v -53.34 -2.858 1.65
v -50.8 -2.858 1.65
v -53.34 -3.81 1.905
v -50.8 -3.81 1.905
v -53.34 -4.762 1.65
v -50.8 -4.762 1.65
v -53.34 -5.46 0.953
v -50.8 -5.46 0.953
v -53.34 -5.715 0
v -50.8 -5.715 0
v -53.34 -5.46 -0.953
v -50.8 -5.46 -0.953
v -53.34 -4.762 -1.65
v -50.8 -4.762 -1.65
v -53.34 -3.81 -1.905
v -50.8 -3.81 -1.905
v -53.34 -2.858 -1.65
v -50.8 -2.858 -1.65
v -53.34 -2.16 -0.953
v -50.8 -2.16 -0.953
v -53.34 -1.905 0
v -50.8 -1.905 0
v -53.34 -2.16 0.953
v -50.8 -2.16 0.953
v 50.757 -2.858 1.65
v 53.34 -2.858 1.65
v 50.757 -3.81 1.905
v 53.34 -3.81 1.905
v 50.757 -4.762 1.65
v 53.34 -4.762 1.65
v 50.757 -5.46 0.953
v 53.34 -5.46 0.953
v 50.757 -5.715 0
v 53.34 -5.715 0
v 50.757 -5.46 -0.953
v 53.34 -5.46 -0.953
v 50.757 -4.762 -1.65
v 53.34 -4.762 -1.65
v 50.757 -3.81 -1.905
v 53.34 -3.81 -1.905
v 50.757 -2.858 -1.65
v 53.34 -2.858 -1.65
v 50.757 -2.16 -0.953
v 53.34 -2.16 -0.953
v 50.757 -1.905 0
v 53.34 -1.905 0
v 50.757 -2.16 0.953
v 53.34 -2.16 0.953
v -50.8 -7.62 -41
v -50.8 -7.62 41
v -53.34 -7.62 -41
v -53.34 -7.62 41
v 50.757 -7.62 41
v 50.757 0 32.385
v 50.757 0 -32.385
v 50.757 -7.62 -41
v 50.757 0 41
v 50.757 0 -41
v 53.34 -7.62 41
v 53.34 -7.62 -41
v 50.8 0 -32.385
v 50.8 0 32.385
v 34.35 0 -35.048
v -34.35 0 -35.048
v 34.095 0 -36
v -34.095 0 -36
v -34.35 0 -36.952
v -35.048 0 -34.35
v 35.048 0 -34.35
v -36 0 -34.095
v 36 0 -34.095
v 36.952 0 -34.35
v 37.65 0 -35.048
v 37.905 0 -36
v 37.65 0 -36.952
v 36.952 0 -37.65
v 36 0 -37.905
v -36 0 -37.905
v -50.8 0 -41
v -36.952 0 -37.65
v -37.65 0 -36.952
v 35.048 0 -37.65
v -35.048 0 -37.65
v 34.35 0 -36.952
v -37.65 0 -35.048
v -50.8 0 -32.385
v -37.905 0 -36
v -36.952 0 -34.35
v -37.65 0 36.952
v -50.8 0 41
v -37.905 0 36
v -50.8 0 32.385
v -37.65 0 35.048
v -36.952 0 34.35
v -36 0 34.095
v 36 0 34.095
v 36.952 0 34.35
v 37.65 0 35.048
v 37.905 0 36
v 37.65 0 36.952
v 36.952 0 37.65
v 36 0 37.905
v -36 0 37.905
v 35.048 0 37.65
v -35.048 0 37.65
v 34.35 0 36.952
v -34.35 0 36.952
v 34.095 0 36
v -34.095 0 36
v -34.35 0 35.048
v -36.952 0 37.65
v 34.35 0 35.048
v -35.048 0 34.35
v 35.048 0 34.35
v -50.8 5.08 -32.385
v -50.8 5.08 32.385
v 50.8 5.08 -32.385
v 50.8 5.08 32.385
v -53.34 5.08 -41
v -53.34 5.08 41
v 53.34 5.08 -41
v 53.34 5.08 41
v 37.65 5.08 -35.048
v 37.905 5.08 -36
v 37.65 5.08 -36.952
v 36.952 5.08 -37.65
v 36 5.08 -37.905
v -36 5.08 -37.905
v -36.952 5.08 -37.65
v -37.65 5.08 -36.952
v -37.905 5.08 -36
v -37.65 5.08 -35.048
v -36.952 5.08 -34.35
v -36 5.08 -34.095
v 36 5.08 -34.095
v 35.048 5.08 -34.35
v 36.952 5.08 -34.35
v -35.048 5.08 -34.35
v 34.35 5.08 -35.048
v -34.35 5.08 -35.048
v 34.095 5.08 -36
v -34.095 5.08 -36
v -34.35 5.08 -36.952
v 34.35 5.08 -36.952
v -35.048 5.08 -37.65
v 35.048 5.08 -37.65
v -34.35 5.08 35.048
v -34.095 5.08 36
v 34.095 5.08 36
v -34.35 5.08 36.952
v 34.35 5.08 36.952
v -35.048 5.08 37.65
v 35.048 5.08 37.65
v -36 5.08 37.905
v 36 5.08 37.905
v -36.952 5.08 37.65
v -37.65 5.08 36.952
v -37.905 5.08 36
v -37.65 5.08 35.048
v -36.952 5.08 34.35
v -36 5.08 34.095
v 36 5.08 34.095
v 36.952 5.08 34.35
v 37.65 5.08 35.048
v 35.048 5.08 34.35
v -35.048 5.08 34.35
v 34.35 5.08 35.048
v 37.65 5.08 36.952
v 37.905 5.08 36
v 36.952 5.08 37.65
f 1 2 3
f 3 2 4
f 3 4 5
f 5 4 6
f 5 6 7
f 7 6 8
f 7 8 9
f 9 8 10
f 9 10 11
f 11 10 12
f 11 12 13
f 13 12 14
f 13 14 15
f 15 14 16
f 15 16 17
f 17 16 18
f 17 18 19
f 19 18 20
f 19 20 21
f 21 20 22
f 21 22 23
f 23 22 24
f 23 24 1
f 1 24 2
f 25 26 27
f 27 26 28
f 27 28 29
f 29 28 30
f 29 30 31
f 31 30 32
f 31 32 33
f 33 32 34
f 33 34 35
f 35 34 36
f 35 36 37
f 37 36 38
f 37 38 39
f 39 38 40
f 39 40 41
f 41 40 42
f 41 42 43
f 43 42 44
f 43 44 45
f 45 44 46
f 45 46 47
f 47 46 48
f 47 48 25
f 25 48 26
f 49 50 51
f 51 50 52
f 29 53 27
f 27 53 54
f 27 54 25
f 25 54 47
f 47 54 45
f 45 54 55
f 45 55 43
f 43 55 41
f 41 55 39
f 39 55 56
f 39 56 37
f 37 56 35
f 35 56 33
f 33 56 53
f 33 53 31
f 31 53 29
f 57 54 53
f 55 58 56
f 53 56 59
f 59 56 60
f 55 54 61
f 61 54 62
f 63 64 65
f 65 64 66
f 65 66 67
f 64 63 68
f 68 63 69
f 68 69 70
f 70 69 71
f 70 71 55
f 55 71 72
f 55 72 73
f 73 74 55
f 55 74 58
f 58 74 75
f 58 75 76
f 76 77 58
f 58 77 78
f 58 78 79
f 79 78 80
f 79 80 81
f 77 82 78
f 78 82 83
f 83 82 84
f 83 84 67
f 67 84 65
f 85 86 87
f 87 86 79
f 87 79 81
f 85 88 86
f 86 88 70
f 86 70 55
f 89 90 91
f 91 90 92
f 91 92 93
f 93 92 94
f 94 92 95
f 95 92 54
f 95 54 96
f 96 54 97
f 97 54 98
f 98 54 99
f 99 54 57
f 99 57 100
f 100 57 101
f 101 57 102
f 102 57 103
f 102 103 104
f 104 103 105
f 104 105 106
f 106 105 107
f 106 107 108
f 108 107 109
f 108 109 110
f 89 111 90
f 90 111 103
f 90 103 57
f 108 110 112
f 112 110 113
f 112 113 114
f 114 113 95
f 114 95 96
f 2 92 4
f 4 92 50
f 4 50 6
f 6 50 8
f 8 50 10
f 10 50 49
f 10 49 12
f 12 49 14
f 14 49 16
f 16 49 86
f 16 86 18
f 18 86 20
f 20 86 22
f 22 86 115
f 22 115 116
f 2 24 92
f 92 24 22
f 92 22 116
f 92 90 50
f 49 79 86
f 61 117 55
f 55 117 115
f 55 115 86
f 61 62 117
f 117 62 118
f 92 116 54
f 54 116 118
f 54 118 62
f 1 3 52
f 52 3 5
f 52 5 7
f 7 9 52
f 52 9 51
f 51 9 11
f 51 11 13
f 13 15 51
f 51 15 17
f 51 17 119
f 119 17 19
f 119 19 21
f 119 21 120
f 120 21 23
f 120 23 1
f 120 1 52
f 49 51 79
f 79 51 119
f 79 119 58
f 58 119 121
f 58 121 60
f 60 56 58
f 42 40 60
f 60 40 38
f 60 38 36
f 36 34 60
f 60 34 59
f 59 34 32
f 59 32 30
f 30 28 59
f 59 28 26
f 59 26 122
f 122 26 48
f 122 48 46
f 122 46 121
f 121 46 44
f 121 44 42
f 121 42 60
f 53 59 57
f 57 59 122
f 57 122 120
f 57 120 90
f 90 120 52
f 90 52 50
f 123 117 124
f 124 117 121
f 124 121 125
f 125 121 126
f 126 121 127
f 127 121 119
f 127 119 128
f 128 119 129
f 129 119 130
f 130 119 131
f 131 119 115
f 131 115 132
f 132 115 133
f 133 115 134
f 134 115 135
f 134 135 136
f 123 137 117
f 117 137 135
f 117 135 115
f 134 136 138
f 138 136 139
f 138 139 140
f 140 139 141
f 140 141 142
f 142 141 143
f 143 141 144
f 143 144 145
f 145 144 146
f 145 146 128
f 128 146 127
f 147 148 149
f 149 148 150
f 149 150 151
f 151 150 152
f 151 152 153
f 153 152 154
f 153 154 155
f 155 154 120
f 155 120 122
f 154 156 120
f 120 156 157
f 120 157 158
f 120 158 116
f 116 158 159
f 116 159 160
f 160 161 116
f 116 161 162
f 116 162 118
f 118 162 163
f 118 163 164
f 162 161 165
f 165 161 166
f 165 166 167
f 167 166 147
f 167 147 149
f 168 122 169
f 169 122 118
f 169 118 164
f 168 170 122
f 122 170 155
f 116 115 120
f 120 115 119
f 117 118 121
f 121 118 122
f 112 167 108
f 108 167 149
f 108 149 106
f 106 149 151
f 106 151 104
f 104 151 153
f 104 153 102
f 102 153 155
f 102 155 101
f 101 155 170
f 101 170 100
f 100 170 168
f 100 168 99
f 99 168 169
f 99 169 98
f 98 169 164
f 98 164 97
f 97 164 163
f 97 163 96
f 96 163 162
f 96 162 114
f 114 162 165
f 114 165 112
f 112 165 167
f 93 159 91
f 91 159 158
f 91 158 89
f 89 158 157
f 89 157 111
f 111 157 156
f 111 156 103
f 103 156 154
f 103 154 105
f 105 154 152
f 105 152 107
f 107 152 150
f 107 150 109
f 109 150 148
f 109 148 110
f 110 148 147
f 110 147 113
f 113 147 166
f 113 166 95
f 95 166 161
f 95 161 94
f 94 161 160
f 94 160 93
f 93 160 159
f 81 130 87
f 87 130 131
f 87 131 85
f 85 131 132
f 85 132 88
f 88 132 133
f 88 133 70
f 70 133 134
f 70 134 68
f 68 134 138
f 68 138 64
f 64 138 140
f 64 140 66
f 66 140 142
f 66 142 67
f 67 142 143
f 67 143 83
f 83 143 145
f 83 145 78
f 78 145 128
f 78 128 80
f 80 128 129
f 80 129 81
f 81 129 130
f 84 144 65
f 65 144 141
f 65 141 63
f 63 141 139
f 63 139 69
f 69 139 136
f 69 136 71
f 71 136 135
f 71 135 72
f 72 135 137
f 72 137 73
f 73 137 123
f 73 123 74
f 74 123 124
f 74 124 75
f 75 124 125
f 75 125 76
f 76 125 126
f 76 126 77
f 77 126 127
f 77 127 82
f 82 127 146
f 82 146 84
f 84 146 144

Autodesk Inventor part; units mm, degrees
ref_plane "YZ Plane" through (0, 0, 0) normal (1, 0, 0) x (0, 1, 0)
ref_plane "XZ Plane" through (0, 0, 0) normal (0, 1, 0) x (-1, 0, 0)
ref_plane "XY Plane" through (0, 0, 0) normal (0, 0, 1) x (1, 0, 0)
sketch "Sketch1" plane through (0, 0, 0) normal (0, 1, 0) x (-1, 0, 0)
  line L0 (-53.34, 41) -> (53.34, 41)
  line L1 (53.34, 41) -> (53.34, -41)
  line L2 (53.34, -41) -> (-53.34, -41)
  line L3 (-53.34, -41) -> (-53.34, 41)
  line L4 (-53.34, 41) -> (53.34, -41) construction
  line L5 (53.34, 41) -> (-53.34, -41) construction
  line L6 (-50.8, 32.385) -> (50.8, 32.385)
  line L7 (50.8, 32.385) -> (50.8, -32.385)
  line L8 (50.8, -32.385) -> (-50.8, -32.385)
  line L9 (-50.8, -32.385) -> (-50.8, 32.385)
  line L10 (-50.8, 32.385) -> (50.8, -32.385) construction
  line L11 (50.8, 32.385) -> (-50.8, -32.385) construction
  point P0 (0, 0)
  dimension "d0" = 106.68
  dimension "d1" = 82
  dimension "d2" = 101.6
  dimension "d3" = 64.77
extrude "Extrusion1" add sketch "Sketch1" along normal blind 5.08
sketch "Sketch2" plane through (0, 0, 0) normal (0, -1, 0) x (1, 0, 0)
  line L0 (-53.34, 41) -> (53.34, 41) projected
  line L1 (53.34, -41) -> (-53.34, -41) projected
  line L2 (53.34, 41) -> (50.7573, 41)
  line L3 (50.7573, 41) -> (50.7573, -41)
  line L4 (50.7573, -41) -> (53.34, -41)
  line L5 (53.34, -41) -> (53.34, 41)
  line L6 (-53.34, -41) -> (-50.8, -41)
  line L7 (-50.8, -41) -> (-50.8, 41)
  line L8 (-50.8, 41) -> (-53.34, 41)
  line L9 (-53.34, 41) -> (-53.34, -41)
  point P0 (0, 0)
extrude "Extrusion2" add sketch "Sketch2" along normal blind 7.62 contours L0 L7 L1 L9 | L0 L5 L1 L3
sketch "Sketch3" plane through (0, 5.08, 0) normal (0, 1, 0) x (1, 0, 0)
  line L0 (-36, -36) -> (36, -36)
  line L1 (36, -36) -> (36, 36)
  line L2 (36, 36) -> (-36, 36)
  line L3 (-36, 36) -> (-36, -36)
  line L4 (-36, -36) -> (36, 36) construction
  line L5 (36, -36) -> (-36, 36) construction
  line L6 (-36, 36) -> (-32.19, 36)
  line L7 (36, 36) -> (32.19, 36)
  line L8 (36, -36) -> (36, -40.19)
  line L9 (53.34, 41) -> (-53.34, 41) projected
  line L10 (-36, 41) -> (-36, 32.385)
  line L11 (50.7573, 32.385) -> (-50.8, 32.385) projected
  point P0 (0, 0)
  dimension "d8" = 72
  dimension "d9" = 72
sketch "Sketch4" plane through (53.34, 5.08, 41) normal (1, 0, 0) x (0, 0, -1)
  line L0 (8.615, -5.08) -> (0, -5.08) projected
  line L1 (0, -12.7) -> (0, 0) projected
  line L2 (0, -5.08) -> (0, -12.7)
  line L3 (0, -12.7) -> (0, -8.89)
  line L4 (0, -8.89) -> (82, -8.89)
  point P0 (41, -5.08)
  point P1 (82, -5.08)
  point P2 (82, -12.7)
  point P3 (41, -8.89)
hole "Hole2" at (53.34, -3.81, 0) direction (-1, 0, 0) diameter 3.81 end through all
hole "Hole3" at (-36, 5.08, 36) at (-36, 5.08, -36) at (36, 5.08, -36) at (36, 5.08, 36) direction (0, -1, 0) diameter 3.81 end through all
properties part number "Fan-Holder-4355"
